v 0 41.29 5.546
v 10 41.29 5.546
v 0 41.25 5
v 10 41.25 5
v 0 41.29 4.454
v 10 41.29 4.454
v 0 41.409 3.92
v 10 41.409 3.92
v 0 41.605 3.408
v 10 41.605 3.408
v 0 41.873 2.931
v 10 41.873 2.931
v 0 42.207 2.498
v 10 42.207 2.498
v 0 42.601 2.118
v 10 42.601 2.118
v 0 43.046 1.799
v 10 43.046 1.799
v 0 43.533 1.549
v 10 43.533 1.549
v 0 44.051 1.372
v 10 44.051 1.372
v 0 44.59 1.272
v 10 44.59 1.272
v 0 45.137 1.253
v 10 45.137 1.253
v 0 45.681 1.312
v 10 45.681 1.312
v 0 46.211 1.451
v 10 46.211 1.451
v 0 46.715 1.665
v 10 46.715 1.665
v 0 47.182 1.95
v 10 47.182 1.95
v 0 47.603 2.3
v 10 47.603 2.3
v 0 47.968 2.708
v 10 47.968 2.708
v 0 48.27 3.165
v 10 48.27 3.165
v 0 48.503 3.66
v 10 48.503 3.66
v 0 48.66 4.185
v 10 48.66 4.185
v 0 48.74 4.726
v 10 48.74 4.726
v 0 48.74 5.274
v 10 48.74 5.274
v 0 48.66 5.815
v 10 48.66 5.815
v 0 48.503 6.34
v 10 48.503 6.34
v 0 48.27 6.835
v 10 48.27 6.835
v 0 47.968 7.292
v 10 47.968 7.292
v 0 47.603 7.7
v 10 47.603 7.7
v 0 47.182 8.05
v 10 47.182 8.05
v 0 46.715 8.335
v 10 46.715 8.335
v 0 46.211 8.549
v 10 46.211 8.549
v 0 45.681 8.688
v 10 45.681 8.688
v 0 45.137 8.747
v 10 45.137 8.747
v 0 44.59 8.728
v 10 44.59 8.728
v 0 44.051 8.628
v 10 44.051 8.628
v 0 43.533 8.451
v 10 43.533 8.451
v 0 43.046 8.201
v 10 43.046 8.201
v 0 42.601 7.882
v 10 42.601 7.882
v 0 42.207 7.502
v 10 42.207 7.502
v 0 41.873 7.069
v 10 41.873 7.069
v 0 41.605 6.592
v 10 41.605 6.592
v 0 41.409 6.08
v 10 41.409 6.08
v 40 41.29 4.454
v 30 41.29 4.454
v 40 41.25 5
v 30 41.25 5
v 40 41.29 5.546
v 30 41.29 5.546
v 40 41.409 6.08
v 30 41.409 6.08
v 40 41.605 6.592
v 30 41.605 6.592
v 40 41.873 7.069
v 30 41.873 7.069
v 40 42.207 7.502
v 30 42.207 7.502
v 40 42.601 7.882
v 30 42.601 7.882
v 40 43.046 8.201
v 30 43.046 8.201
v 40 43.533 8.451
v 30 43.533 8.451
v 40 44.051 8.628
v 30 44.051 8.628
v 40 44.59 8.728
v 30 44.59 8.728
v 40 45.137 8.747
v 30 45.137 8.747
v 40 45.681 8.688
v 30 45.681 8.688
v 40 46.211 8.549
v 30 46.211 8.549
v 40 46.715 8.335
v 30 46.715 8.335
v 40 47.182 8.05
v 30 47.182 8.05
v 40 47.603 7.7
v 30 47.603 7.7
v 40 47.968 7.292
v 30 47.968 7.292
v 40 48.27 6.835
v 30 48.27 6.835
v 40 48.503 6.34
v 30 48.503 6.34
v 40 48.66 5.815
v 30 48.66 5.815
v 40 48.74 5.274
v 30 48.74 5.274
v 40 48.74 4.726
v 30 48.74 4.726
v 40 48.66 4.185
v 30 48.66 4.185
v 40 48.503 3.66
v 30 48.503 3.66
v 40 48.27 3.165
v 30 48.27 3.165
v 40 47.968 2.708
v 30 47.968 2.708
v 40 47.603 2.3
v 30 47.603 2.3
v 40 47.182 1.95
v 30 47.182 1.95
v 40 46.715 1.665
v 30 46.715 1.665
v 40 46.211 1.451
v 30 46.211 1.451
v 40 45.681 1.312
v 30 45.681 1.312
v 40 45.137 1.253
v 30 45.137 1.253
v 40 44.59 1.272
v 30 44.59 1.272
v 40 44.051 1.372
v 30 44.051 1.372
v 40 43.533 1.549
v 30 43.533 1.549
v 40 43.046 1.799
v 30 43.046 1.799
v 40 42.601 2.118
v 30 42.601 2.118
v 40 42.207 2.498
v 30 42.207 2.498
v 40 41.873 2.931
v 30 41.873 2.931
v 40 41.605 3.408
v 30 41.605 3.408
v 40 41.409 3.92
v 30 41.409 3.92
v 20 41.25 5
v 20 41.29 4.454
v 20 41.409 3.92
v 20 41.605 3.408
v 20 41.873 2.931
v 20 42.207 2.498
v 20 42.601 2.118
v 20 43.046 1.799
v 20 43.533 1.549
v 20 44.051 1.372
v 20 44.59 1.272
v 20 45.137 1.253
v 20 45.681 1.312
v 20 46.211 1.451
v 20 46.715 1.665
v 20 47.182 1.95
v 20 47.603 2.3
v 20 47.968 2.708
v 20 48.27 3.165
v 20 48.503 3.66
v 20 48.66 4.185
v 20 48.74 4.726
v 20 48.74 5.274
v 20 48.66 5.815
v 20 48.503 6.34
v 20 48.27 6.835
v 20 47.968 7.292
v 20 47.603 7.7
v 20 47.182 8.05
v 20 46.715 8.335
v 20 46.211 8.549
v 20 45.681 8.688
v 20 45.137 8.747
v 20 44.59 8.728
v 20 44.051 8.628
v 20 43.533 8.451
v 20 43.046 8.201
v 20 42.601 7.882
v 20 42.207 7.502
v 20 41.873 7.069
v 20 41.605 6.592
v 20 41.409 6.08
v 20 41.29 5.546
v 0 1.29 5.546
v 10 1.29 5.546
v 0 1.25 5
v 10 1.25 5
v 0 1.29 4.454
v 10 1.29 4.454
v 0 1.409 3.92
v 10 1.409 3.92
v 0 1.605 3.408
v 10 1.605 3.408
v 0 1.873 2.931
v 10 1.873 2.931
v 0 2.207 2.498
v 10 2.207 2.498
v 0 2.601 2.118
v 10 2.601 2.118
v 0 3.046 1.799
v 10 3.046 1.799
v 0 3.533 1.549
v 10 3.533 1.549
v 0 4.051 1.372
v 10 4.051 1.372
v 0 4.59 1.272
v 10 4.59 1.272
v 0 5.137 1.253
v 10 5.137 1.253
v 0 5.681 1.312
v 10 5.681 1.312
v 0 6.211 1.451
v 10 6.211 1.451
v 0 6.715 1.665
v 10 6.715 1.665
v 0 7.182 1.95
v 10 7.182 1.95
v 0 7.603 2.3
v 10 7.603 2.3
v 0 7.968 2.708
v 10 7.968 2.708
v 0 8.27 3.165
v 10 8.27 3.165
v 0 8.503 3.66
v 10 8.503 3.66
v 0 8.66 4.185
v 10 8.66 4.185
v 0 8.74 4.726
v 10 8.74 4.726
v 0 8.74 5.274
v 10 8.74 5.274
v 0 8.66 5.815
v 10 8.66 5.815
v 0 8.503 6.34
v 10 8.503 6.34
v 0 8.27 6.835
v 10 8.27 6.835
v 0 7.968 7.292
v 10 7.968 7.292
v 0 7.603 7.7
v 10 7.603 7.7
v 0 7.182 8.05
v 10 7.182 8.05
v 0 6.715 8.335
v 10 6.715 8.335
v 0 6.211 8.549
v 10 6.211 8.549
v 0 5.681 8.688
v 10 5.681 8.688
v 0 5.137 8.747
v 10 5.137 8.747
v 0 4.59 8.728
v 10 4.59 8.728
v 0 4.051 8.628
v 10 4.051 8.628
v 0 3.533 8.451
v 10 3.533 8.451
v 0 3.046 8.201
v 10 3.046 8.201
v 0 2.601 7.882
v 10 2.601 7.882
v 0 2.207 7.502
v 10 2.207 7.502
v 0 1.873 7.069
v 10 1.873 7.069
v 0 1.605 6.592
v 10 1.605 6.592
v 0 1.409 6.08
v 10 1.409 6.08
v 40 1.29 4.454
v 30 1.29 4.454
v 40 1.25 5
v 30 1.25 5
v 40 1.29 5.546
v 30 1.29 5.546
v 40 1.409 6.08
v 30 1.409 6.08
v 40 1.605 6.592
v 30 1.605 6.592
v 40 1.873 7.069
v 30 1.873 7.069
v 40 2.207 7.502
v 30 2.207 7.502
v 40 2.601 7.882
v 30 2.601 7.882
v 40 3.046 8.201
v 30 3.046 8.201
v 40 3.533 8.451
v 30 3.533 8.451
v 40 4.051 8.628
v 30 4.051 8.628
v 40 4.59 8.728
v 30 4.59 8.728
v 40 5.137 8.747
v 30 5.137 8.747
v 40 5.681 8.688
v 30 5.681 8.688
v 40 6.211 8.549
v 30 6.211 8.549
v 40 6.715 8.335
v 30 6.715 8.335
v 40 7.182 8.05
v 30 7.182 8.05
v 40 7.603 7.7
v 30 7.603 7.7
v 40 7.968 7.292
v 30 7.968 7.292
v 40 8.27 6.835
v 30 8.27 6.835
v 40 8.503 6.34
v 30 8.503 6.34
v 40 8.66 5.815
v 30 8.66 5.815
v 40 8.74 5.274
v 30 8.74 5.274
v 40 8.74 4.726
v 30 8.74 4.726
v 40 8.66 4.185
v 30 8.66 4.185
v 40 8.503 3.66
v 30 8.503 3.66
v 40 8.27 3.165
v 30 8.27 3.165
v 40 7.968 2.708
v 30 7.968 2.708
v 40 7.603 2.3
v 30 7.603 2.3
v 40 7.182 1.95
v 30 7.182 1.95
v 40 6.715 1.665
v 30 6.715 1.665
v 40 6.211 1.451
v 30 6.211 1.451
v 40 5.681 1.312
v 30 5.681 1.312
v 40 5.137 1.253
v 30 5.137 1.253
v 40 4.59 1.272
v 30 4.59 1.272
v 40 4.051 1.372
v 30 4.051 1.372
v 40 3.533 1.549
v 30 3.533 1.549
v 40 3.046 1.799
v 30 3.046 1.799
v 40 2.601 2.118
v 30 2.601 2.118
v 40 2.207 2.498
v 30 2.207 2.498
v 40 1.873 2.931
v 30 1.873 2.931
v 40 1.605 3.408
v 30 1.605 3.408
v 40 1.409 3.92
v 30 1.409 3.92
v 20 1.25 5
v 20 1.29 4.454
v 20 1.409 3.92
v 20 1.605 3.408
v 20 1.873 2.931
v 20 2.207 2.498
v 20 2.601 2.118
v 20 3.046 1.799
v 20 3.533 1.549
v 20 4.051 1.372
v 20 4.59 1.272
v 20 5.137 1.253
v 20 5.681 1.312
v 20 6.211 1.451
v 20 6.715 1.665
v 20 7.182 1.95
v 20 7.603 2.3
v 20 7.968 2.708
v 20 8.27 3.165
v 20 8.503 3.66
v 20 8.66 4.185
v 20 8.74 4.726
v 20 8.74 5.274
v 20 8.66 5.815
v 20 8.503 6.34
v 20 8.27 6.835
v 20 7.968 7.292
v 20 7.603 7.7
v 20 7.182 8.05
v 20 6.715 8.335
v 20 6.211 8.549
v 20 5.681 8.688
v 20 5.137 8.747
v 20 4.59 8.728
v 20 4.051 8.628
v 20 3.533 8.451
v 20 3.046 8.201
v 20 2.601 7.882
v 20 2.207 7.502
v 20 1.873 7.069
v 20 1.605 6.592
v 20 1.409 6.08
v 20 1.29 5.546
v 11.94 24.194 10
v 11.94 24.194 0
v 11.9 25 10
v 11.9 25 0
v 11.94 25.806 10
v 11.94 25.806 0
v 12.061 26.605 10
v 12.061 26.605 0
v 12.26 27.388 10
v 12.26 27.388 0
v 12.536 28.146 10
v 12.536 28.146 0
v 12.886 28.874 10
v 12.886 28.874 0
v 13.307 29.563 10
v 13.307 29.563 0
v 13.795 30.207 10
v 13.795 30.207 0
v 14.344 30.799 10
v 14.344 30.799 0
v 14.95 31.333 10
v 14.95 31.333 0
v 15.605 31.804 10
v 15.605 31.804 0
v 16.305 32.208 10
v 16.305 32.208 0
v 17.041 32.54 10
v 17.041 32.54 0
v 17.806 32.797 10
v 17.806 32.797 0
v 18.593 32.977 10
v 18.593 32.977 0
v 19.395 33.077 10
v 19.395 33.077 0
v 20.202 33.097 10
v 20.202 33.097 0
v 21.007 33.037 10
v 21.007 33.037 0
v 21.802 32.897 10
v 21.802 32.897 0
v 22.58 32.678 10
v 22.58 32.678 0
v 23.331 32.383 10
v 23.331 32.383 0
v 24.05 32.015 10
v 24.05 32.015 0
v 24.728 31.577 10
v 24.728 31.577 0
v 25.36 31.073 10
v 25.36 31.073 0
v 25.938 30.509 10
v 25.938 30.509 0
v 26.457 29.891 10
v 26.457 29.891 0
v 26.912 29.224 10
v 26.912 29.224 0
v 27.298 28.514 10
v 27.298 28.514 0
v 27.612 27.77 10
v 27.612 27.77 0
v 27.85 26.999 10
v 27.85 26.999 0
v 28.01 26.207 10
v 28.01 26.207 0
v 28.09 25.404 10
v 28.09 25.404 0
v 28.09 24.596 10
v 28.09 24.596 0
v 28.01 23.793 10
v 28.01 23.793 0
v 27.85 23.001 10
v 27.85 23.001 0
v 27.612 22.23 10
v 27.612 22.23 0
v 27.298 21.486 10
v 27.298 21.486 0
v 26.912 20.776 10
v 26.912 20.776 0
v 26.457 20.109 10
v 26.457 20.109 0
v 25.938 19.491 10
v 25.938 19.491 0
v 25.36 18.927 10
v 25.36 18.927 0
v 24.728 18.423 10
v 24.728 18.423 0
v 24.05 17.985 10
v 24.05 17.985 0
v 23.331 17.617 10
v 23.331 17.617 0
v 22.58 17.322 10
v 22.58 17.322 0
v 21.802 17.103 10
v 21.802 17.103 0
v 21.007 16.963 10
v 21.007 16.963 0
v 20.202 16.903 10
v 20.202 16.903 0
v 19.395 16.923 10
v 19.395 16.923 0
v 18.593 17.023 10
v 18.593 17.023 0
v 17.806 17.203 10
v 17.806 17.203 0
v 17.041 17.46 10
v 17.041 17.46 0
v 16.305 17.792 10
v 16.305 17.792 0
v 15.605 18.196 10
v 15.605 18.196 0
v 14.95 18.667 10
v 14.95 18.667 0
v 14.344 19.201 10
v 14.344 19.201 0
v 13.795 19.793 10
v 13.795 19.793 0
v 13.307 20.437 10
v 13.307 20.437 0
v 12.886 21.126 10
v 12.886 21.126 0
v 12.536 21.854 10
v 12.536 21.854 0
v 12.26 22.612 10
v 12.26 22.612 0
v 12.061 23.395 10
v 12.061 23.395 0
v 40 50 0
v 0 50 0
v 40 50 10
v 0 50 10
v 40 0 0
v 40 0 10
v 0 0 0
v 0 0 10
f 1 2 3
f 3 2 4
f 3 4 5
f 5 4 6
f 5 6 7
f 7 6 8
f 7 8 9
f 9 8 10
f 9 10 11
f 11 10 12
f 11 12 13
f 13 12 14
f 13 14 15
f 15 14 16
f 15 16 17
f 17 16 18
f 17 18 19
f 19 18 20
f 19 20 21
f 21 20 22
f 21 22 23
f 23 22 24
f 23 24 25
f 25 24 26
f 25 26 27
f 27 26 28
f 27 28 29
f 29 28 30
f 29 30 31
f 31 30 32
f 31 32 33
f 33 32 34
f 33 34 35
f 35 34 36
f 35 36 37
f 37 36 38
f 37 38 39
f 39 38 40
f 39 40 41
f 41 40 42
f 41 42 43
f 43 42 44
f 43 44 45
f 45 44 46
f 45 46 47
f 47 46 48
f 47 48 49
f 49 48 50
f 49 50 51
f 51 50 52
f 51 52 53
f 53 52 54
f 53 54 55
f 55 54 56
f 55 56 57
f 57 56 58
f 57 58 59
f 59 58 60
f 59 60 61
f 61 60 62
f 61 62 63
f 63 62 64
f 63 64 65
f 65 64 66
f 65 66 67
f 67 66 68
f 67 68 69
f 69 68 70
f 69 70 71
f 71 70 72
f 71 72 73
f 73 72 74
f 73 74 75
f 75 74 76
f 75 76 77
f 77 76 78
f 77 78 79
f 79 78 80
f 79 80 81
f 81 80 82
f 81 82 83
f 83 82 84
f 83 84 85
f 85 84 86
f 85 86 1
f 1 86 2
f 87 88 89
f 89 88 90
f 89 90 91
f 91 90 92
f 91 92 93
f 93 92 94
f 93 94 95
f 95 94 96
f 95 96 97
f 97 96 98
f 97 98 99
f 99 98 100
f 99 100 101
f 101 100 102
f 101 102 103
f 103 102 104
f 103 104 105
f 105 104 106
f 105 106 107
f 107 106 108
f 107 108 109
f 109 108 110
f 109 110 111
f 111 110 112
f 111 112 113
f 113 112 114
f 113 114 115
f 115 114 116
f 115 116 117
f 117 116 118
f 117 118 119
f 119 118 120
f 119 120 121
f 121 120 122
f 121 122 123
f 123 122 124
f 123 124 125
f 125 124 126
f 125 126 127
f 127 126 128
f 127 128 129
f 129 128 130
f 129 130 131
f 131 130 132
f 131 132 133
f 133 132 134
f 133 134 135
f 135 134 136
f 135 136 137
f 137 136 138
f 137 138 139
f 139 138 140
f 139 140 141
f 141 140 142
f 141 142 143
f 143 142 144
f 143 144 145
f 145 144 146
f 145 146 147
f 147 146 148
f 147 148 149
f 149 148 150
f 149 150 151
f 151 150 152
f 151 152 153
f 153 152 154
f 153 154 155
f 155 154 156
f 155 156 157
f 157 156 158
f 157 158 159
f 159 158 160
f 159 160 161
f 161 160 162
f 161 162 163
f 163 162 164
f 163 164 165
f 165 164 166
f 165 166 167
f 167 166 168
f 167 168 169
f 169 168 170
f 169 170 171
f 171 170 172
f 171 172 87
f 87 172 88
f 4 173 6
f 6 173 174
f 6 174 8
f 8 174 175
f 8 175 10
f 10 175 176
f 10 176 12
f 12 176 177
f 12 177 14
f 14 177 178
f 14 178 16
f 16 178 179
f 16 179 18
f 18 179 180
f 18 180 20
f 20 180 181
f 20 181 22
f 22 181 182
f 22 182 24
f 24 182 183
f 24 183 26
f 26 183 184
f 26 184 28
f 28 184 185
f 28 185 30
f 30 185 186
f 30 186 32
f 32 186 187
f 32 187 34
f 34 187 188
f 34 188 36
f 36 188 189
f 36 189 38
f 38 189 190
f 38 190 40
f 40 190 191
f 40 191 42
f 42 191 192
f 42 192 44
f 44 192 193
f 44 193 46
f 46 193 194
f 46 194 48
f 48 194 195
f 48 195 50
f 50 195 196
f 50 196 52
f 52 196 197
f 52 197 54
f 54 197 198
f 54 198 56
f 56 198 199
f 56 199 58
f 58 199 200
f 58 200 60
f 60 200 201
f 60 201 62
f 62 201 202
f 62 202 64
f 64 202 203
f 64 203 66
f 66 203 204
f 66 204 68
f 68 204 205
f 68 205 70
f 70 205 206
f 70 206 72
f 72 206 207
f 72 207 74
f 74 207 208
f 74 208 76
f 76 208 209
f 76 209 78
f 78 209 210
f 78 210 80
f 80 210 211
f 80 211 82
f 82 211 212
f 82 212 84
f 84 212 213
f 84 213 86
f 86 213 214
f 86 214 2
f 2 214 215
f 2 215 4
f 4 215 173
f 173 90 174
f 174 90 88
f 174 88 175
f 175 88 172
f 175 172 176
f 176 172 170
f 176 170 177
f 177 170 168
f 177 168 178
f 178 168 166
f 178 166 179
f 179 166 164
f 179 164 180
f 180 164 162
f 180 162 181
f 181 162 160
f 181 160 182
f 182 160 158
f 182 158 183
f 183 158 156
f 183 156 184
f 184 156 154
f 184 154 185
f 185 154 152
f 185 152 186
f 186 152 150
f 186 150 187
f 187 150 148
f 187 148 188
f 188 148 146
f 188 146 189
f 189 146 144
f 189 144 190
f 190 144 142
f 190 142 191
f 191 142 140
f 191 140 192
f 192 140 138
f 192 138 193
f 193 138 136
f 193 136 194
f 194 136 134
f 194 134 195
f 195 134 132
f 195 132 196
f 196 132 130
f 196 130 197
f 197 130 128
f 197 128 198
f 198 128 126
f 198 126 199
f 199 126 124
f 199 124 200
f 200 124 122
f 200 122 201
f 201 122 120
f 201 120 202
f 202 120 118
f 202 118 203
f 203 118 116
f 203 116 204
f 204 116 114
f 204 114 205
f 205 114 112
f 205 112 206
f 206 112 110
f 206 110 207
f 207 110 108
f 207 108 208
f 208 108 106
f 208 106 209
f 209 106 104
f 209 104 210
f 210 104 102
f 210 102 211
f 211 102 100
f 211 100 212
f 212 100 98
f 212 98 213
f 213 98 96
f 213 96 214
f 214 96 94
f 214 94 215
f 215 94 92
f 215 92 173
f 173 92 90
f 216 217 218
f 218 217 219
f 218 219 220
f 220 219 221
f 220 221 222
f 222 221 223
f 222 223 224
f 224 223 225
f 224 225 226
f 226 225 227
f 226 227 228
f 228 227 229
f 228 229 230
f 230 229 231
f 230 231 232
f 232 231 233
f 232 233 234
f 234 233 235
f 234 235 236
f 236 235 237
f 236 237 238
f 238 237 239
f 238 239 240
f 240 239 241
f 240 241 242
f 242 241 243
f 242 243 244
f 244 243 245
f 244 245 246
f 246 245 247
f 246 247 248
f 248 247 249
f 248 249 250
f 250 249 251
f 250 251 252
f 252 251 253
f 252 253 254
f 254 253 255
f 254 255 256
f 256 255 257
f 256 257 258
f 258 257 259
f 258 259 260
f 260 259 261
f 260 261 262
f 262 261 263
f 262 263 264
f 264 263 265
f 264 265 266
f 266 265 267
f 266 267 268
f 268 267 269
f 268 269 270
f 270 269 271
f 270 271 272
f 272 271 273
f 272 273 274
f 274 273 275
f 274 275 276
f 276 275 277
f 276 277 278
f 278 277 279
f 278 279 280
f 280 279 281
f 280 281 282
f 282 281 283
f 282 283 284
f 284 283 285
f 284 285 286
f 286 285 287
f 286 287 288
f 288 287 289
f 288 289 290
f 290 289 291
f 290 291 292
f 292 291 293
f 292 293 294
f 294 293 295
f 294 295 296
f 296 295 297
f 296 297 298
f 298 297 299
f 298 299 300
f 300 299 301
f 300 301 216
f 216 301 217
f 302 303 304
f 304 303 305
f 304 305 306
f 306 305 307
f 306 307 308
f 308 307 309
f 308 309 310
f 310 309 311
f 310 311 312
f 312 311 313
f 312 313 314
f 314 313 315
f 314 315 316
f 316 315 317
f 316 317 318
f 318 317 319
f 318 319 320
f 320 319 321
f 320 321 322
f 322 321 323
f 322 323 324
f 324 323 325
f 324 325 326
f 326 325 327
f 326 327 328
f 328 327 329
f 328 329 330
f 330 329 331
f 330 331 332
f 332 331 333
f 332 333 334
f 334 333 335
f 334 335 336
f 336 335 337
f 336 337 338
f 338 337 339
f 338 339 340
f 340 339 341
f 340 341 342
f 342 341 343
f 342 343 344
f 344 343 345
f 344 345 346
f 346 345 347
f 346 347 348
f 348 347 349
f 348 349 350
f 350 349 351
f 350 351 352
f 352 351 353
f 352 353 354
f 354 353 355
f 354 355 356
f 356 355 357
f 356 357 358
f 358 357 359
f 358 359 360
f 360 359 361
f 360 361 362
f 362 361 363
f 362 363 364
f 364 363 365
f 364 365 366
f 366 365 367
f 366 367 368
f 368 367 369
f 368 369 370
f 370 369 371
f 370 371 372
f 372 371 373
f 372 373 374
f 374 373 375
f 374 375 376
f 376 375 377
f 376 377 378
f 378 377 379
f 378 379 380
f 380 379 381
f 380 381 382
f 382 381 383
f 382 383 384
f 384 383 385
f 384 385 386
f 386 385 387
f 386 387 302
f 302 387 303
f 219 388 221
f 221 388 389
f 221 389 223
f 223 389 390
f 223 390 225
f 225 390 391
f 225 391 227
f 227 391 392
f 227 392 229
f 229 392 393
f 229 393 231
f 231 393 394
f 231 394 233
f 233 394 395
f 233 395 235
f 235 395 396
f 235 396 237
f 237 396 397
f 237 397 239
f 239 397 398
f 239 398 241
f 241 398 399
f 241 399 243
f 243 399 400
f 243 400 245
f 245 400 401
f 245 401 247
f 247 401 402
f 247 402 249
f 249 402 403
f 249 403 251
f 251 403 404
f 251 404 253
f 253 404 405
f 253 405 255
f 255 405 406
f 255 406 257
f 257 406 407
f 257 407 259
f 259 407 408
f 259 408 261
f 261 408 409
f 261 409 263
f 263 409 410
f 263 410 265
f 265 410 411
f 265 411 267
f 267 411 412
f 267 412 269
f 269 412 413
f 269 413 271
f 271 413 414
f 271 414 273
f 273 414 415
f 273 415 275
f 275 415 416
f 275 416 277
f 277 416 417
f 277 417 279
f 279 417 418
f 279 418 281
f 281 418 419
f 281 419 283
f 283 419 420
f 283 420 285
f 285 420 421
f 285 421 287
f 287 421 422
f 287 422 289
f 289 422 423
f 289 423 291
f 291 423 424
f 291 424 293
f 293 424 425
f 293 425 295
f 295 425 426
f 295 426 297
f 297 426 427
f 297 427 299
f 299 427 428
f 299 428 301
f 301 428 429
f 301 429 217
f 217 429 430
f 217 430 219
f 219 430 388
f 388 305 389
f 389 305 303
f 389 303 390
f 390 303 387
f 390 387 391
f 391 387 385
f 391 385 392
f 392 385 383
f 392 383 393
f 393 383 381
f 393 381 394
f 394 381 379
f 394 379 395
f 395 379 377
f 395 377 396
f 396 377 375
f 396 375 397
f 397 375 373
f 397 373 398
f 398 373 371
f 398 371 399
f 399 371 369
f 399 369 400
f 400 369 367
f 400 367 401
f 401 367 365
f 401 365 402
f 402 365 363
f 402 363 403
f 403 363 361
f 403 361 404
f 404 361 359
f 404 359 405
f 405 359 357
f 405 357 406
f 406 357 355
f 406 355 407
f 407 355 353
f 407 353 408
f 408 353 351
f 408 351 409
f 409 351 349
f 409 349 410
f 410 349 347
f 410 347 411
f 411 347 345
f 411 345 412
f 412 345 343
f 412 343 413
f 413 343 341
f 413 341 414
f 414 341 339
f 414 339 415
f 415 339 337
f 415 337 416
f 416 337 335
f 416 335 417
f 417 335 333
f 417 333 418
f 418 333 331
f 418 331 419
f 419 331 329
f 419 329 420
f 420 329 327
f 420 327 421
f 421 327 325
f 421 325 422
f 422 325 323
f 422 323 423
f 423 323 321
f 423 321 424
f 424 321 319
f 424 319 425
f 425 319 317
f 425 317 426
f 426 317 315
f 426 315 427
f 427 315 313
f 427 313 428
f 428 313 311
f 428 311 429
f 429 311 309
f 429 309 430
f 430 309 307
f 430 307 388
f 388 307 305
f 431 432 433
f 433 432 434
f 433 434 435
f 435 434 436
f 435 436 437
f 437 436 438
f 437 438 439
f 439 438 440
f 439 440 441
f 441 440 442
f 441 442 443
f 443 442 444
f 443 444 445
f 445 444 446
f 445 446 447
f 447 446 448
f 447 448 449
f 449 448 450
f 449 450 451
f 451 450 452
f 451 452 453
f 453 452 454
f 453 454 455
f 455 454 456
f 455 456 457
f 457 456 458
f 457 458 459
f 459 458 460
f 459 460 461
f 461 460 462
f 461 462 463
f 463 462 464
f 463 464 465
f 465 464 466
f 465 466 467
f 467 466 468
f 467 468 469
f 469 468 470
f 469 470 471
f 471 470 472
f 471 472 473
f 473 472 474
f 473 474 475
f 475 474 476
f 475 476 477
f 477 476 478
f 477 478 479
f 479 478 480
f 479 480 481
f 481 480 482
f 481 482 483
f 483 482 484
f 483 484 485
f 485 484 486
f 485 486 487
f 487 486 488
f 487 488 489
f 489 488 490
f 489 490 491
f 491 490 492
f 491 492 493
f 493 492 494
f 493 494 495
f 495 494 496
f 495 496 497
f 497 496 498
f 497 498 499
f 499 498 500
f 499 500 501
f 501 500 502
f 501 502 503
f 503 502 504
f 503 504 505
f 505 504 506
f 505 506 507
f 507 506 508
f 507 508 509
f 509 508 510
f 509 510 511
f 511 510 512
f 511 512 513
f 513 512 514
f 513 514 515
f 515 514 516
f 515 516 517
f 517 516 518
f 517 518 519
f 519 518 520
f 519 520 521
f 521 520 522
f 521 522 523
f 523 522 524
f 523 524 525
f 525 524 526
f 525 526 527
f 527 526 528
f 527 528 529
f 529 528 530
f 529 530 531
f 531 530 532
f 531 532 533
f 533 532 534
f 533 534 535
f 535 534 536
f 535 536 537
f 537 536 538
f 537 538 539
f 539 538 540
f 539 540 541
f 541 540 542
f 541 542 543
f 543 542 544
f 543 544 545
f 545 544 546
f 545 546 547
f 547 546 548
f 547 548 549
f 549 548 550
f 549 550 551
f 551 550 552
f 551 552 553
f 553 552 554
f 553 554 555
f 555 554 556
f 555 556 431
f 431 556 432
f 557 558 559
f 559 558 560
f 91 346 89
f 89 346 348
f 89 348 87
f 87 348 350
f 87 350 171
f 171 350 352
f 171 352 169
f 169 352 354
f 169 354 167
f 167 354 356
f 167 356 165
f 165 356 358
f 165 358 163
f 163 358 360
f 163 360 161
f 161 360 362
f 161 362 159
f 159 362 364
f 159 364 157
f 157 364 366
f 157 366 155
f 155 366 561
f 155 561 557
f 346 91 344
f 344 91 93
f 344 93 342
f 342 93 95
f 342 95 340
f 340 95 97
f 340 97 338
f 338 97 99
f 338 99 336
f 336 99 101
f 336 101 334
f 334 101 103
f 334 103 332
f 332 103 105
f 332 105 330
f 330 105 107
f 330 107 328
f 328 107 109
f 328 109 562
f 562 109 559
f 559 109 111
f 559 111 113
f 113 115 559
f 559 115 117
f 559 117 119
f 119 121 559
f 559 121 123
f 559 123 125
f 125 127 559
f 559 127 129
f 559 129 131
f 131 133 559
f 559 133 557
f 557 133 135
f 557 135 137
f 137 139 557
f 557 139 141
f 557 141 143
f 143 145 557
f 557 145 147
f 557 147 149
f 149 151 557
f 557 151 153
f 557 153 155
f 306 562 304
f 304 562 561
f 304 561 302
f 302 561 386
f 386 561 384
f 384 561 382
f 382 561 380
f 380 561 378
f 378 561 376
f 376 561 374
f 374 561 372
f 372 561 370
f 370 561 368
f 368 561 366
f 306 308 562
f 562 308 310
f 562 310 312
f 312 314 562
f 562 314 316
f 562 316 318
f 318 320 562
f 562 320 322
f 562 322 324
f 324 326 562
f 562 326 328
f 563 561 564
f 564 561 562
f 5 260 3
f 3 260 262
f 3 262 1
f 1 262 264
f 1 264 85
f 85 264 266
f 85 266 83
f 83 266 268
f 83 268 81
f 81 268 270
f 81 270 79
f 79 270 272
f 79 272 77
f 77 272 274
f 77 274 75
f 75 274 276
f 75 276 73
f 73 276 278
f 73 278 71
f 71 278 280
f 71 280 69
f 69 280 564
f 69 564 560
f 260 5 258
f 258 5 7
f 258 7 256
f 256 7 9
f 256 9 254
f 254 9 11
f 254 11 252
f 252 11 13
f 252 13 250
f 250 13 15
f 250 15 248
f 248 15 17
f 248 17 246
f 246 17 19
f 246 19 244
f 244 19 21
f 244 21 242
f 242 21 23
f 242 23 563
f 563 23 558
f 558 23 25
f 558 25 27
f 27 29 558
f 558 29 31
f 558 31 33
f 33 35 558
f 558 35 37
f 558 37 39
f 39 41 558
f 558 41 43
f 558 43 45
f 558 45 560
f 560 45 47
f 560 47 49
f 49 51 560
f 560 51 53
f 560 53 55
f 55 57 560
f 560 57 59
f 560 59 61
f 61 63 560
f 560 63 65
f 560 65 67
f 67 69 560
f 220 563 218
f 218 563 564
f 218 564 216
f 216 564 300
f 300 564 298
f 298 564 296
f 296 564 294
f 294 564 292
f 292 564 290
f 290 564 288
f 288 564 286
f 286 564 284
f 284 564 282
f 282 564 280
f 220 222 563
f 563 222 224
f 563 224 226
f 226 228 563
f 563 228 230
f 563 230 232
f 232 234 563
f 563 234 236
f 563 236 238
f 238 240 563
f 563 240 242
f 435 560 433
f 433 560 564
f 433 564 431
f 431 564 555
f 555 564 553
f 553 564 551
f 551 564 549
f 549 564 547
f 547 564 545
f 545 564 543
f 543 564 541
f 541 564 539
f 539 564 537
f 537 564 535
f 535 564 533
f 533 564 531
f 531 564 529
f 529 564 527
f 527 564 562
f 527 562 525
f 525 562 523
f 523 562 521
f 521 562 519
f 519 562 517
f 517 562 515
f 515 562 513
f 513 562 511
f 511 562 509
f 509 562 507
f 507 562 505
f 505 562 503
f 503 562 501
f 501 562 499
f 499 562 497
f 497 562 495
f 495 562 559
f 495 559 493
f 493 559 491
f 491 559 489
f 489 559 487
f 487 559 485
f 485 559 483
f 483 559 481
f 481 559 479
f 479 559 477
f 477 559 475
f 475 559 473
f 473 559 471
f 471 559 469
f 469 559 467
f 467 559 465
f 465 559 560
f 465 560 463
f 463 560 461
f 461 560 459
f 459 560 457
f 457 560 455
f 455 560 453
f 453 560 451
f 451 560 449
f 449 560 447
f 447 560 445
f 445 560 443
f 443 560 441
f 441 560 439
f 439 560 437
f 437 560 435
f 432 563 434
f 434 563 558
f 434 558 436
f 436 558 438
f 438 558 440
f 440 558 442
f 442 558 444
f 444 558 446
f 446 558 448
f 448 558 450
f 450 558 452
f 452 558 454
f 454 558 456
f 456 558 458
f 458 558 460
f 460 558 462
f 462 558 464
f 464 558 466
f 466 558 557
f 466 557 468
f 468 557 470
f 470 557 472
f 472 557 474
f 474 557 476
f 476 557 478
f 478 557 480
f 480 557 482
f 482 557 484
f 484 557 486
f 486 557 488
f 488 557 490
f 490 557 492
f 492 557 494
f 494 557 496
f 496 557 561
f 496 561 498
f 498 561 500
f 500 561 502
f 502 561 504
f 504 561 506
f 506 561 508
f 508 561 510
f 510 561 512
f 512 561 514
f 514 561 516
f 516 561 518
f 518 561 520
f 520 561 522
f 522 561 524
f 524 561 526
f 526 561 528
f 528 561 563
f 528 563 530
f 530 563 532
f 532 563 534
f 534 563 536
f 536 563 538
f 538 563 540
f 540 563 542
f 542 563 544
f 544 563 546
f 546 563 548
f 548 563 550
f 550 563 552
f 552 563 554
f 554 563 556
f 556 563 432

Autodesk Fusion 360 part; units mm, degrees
sketch "Top" plane through (0, 0, 0) normal (0, 0, 1) x (1, 0, 0)
  line L0 (0, 0) -> (40, 0)
  line L1 (40, 0) -> (40, 50)
  line L2 (40, 50) -> (0, 50)
  line L3 (0, 50) -> (0, 0)
  circle A0 centre (20, 25) radius 8.1
  dimension "d6" = 40
  dimension "d7" = 50
  dimension "d11" = 16.2
  dimension "d12" = 25
  dimension "d13" = 20
extrude "Extrude1" add sketch "Top" along normal blind 10 contours L0 L1 L2 L3 | A0
extrude "Extrude2" cut sketch "Top" along normal blind 20 contours A0
sketch "Sketch2" plane through (40, 0, 0) normal (1, 0, 0) x (0, 1, 0)
  line L0 (0, 0) -> (50, 0)
  line L1 (50, 0) -> (50, 10)
  line L2 (50, 10) -> (0, 10)
  line L3 (0, 10) -> (0, 0)
  circle A0 centre (5, 5) radius 3.75
  circle A1 centre (45, 5) radius 3.75
  dimension "d16" = 7.5
  dimension "d17" = 7.5
  dimension "d18" = 5
  dimension "d19" = 5
  dimension "d20" = 5
  dimension "d21" = 5
extrude "Extrude3" cut sketch "Sketch2" against normal blind 50 contours A0
extrude "Extrude4" cut sketch "Sketch2" against normal blind 50 contours A1
equation "length = 50 mm"
equation "width = 40 mm"
equation "thickness = 10 mm"
equation "extra = 10 mm"
equation "fit_gap = 0.2 mm"
equation "d6 = width"
equation "d7 = length"
equation "d8 = thickness"
equation "bearing_8155_outer_radius = 8 mm"
equation "d11 = ( bearing_8155_outer_radius * 2 ) + fit_gap"
equation "d12 = length / 2"
equation "d13 = width / 2"
equation "d14 = thickness + extra"
equation "d16 = 3 * thickness / 4"
equation "d17 = 3 * thickness / 4"
equation "d18 = thickness / 2"
equation "d19 = thickness / 2"
equation "d20 = thickness / 2"
equation "d21 = thickness / 2"
equation "d22 = -( width + extra )"
equation "d24 = -( width + extra )"
